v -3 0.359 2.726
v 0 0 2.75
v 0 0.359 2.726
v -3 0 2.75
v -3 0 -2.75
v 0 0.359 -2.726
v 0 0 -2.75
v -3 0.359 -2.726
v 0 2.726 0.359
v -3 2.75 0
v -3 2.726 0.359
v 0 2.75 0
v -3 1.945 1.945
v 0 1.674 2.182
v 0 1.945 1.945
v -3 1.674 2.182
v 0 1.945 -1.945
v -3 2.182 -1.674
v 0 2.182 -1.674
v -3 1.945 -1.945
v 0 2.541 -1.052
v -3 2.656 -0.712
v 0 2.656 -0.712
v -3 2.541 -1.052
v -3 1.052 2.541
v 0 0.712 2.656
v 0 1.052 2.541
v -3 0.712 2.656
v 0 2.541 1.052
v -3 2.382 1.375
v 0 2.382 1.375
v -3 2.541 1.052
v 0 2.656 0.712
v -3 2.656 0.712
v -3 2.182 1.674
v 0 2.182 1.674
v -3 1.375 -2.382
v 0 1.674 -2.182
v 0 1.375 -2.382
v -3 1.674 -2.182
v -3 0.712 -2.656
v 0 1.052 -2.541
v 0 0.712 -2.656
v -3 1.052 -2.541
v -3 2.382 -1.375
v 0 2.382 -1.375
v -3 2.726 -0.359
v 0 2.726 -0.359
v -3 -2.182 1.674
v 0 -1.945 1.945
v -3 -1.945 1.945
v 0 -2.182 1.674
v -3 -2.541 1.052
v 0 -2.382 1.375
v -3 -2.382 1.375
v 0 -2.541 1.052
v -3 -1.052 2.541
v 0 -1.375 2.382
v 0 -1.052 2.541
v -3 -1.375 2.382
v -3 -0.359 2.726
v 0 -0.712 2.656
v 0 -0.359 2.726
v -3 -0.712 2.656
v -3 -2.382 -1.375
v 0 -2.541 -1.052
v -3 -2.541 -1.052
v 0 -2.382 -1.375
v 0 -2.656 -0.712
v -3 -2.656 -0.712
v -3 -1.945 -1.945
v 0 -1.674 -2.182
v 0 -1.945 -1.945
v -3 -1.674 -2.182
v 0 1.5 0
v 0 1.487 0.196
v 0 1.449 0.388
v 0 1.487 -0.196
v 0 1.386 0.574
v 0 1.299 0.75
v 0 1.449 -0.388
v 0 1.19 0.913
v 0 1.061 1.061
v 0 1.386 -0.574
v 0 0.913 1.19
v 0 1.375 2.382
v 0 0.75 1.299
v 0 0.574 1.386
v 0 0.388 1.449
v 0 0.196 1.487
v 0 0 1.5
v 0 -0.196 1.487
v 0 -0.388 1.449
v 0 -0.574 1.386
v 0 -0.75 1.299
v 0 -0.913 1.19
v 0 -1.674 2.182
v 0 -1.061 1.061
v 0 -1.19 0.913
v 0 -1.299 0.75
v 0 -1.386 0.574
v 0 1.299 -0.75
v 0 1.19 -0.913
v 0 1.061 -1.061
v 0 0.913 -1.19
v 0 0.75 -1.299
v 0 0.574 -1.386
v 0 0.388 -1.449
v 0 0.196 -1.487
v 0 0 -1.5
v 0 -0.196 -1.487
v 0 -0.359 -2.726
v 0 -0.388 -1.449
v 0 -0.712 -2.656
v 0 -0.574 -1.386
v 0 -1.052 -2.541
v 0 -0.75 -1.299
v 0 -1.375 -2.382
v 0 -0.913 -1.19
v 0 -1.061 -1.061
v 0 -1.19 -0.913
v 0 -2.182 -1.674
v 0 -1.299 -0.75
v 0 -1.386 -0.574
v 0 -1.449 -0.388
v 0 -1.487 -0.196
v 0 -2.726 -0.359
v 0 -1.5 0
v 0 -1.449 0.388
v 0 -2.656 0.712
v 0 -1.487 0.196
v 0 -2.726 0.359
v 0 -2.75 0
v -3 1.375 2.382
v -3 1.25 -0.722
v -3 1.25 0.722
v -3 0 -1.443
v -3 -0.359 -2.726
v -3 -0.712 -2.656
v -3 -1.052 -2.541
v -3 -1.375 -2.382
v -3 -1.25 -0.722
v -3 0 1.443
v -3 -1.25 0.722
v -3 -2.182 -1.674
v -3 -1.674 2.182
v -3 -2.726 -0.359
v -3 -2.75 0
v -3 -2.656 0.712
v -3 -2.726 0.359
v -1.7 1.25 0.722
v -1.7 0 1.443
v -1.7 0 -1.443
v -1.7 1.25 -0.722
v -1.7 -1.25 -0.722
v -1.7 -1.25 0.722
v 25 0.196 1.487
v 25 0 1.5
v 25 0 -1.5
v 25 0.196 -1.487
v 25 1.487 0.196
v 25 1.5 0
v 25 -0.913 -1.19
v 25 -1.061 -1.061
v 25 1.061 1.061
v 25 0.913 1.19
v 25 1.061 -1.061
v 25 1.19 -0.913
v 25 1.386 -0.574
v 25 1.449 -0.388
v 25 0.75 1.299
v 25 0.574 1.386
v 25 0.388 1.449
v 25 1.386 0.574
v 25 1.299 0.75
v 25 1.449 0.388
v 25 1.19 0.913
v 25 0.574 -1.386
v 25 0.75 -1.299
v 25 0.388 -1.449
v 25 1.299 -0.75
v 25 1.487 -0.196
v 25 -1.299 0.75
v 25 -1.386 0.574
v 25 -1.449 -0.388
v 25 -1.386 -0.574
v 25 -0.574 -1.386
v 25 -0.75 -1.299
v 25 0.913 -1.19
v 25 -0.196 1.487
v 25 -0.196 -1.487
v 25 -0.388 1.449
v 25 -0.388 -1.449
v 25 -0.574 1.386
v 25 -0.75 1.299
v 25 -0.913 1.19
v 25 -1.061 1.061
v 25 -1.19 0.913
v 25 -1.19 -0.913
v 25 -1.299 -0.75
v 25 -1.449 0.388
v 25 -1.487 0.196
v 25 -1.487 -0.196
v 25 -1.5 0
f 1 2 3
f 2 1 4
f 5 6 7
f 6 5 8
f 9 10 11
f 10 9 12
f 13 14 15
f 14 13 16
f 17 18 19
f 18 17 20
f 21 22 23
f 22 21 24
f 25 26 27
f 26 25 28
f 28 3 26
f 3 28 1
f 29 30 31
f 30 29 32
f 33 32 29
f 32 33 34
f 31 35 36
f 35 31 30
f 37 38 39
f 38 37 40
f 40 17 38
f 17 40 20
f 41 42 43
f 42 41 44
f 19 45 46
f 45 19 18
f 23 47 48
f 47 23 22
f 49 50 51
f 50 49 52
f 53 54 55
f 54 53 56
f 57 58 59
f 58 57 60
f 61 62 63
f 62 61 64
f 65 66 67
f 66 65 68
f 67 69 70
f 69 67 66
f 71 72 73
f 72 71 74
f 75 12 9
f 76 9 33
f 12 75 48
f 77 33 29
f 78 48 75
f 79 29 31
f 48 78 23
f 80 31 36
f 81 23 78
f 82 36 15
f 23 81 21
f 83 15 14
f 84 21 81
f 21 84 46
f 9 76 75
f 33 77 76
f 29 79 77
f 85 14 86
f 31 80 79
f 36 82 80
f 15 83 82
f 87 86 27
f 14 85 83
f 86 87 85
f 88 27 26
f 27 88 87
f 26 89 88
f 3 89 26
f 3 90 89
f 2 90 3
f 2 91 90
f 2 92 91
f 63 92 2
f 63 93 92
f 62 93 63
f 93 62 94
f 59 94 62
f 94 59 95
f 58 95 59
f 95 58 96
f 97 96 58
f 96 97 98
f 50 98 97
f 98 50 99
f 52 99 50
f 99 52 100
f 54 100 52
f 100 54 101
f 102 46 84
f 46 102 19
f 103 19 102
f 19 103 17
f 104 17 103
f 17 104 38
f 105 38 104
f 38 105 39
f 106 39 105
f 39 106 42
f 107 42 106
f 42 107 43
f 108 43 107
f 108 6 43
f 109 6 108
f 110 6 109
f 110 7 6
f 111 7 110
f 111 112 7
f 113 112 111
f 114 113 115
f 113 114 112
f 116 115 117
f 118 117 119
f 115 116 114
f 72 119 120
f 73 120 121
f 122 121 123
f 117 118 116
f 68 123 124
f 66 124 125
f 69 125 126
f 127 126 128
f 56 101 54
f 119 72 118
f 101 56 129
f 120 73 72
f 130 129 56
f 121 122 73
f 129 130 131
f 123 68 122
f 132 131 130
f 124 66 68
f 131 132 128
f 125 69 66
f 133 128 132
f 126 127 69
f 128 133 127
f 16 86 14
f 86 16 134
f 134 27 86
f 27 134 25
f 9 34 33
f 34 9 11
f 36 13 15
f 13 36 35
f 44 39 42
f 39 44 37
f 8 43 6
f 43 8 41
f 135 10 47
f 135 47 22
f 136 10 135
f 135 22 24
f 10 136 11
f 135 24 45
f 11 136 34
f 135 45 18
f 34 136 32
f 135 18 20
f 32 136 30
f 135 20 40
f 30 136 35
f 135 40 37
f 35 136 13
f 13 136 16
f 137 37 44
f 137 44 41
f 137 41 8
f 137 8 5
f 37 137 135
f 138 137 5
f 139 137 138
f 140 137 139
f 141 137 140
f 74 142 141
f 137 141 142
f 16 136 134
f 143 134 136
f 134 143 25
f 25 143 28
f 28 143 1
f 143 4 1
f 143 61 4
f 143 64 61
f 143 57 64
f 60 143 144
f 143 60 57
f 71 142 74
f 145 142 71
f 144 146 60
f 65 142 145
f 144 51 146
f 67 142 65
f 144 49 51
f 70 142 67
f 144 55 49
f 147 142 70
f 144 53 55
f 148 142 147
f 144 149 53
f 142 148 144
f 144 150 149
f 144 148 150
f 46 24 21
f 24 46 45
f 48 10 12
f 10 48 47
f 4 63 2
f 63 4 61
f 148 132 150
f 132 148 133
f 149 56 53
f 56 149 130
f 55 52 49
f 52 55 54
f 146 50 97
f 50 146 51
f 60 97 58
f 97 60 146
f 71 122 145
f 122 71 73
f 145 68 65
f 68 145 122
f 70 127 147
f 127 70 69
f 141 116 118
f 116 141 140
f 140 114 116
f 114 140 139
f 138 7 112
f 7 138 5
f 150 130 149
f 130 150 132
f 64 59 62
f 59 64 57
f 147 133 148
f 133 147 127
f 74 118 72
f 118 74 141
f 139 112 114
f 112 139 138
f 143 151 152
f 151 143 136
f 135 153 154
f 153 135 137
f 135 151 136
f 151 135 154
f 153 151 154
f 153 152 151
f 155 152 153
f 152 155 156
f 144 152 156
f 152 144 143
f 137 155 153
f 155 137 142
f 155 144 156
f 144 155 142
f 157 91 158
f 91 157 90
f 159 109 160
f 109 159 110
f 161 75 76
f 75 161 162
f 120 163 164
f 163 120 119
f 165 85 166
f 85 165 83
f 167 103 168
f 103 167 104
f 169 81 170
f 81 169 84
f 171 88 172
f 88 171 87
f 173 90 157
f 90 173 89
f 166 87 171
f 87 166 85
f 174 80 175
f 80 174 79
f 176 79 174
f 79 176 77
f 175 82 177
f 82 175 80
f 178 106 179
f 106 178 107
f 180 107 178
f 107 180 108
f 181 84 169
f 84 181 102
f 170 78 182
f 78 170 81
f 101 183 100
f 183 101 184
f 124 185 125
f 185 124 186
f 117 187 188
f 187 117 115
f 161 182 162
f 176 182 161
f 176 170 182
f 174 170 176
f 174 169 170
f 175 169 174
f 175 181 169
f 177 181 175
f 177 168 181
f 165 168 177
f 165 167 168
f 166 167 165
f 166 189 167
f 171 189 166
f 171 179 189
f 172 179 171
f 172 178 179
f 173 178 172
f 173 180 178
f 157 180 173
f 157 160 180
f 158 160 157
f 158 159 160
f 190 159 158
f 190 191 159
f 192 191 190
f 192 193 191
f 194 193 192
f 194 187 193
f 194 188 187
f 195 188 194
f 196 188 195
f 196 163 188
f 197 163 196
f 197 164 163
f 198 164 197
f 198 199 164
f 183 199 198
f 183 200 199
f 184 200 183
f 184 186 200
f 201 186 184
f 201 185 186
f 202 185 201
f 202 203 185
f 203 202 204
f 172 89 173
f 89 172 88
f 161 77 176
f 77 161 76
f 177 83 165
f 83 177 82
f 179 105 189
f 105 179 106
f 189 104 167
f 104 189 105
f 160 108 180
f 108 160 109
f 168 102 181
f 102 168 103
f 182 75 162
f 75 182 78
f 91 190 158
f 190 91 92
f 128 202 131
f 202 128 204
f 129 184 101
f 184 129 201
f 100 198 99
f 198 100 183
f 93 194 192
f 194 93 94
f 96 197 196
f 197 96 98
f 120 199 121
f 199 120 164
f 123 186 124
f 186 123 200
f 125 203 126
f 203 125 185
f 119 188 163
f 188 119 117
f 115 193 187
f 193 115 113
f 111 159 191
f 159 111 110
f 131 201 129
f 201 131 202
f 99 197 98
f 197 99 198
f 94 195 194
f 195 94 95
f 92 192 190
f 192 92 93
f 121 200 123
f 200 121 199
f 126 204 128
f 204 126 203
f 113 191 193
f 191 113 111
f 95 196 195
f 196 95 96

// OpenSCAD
// file: ../../../lib/nutsnbolts/data-access.scad
// Norm Nuts and Bolts - a OpenSCAD library
// Copyright (C) 2012  Johannes Kneer

// This program is free software: you can redistribute it and/or modify
// it under the terms of the GNU General Public License as published by
// the Free Software Foundation, either version 3 of the License, or
// (at your option) any later version.

// This program is distributed in the hope that it will be useful,
// but WITHOUT ANY WARRANTY; without even the implied warranty of
// MERCHANTABILITY or FITNESS FOR A PARTICULAR PURPOSE.  See the
// GNU General Public License for more details.

// You should have received a copy of the GNU General Public License
// along with this program.  If not, see <http://www.gnu.org/licenses/>.


// DATABASE ACCESS FUNCTIONS AND CONSTANTS



// == CONSTANTS ==

// screw table access keys
_NB_S_DESC            = 0;
_NB_S_FAMKEY			    = 1;
_NB_S_LENGTH          = 2;
_NB_S_NOTHREAD_LENGTH = 3;

_NB_F_DESC			      = 0;
_NB_F_OUTER_DIA       = 1;
_NB_F_INNER_DIA       = 2;
_NB_F_LEAD            = 3;
_NB_F_KEY             = 4;
_NB_F_KEY_DEPTH       = 5;
_NB_F_HEAD_HEIGHT     = 6;
_NB_F_HEAD_DIA        = 7;
_NB_F_NUT_KEY         = 8;
_NB_F_NUT_HEIGHT      = 9;
_NB_F_PITCH_FINE      = 10;
_NB_F_PITCH_MEDIUM    = 11;
_NB_F_PITCH_COARSE    = 12;


// == FUNCTIONS ==

// _get_screw("descriptor")   with descriptor = M8x25
//   find the line for a general object in the data matrix

function _get_screw(n) = data_screw[search([n], data_screw)[0]];
function _get_screw_fam(n) = data_screw_fam[search([_get_screw(n)[_NB_S_FAMKEY]], data_screw_fam)[0]];

function _get_fam(n) = data_screw_fam[search([n], data_screw_fam)[0]];


// _get_XXXXX("descriptor") functions
// find a single property in the database

function _get_desc(n)        = _get_screw(n)[_NB_S_DESC];
function _get_famkey(n)         = _get_screw(n)[_NB_S_FAMKEY];
function _get_length(n)      = _get_screw(n)[_NB_S_LENGTH];
function _get_nt_length(n)   = _get_screw(n)[_NB_S_NOTHREAD_LENGTH];

function _get_outer_dia(n)   = _get_screw_fam(n)[_NB_F_OUTER_DIA];
function _get_inner_dia(n)   = _get_screw_fam(n)[_NB_F_INNER_DIA];
function _get_lead(n)        = _get_screw_fam(n)[_NB_F_LEAD];
function _get_head_height(n) = _get_screw_fam(n)[_NB_F_HEAD_HEIGHT];
function _get_head_dia(n)    = _get_screw_fam(n)[_NB_F_HEAD_DIA];
function _get_nut_key(n)     = _get_screw_fam(n)[_NB_F_NUT_KEY];
function _get_nut_height(n)  = _get_screw_fam(n)[_NB_F_NUT_HEIGHT];
function _get_fine_pitch(n)  = _get_screw_fam(n)[_NB_F_PITCH_FINE];
function _get_medium_pitch(n)  = _get_screw_fam(n)[_NB_F_PITCH_MEDIUM];
function _get_coarse_pitch(n)  = _get_screw_fam(n)[_NB_F_PITCH_COARSE];
// main file
/**********************************************************************************************************************
 **
 ** parts/vitamins/screw_M3x25.scad
 **
 ** This file renders a screw of the dimensions specified by the file name.
 **
 **********************************************************************************************************************/

include <../../../lib/nutsnbolts/cyl_head_bolt.scad>;

$fn = 48;
rotate([0, -90, 0])
	screw("M3x25"); 
